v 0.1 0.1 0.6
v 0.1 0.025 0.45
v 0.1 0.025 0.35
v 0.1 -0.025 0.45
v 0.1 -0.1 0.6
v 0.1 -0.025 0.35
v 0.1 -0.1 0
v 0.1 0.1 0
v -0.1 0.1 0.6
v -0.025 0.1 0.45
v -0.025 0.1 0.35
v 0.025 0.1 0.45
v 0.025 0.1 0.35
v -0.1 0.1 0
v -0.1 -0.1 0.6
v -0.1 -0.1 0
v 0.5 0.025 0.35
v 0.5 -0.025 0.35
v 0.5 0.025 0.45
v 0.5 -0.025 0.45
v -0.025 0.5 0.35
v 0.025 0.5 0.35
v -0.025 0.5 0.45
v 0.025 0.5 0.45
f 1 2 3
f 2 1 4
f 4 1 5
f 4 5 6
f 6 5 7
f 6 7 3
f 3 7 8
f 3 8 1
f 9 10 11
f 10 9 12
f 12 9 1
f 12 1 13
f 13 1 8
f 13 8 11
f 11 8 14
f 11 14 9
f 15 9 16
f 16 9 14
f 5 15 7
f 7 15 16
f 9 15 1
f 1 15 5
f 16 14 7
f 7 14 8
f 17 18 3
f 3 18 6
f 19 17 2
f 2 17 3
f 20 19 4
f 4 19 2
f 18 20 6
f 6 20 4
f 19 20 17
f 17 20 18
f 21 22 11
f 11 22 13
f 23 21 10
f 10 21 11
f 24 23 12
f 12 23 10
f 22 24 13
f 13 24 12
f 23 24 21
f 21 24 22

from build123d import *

# Parameters (mm, degrees)
SKETCH2_W           = 0.2
SKETCH2_H           = 0.2
BOSS_EXTRUDE1_DEPTH = 0.6
SKETCH3_W           = 0.1
SKETCH3_H           = 0.05
BOSS_EXTRUDE2_DEPTH = 0.4


with BuildPart() as part:
    # Sketch2 → Boss-Extrude1 (new body)
    with BuildSketch(Plane.XY):
        Rectangle(SKETCH2_W, SKETCH2_H)
    extrude(amount=BOSS_EXTRUDE1_DEPTH)

    # Sketch3 → Boss-Extrude2 (add)
    with BuildSketch(Plane(origin=(0.1, 0, 0), x_dir=(0, 0, -1), z_dir=(1, 0, 0))):
        with Locations((-0.4, 0)):
            Rectangle(SKETCH3_W, SKETCH3_H)
    boss_extrude2 = extrude(amount=BOSS_EXTRUDE2_DEPTH)

    # Mirror1: Boss-Extrude2 across plane
    add(boss_extrude2.mirror(Plane(origin=(0, 0, 0), x_dir=(0, 0, 1), z_dir=(-0.7071067811865477, 0.7071067811865475, 0))))


solid = part.part
